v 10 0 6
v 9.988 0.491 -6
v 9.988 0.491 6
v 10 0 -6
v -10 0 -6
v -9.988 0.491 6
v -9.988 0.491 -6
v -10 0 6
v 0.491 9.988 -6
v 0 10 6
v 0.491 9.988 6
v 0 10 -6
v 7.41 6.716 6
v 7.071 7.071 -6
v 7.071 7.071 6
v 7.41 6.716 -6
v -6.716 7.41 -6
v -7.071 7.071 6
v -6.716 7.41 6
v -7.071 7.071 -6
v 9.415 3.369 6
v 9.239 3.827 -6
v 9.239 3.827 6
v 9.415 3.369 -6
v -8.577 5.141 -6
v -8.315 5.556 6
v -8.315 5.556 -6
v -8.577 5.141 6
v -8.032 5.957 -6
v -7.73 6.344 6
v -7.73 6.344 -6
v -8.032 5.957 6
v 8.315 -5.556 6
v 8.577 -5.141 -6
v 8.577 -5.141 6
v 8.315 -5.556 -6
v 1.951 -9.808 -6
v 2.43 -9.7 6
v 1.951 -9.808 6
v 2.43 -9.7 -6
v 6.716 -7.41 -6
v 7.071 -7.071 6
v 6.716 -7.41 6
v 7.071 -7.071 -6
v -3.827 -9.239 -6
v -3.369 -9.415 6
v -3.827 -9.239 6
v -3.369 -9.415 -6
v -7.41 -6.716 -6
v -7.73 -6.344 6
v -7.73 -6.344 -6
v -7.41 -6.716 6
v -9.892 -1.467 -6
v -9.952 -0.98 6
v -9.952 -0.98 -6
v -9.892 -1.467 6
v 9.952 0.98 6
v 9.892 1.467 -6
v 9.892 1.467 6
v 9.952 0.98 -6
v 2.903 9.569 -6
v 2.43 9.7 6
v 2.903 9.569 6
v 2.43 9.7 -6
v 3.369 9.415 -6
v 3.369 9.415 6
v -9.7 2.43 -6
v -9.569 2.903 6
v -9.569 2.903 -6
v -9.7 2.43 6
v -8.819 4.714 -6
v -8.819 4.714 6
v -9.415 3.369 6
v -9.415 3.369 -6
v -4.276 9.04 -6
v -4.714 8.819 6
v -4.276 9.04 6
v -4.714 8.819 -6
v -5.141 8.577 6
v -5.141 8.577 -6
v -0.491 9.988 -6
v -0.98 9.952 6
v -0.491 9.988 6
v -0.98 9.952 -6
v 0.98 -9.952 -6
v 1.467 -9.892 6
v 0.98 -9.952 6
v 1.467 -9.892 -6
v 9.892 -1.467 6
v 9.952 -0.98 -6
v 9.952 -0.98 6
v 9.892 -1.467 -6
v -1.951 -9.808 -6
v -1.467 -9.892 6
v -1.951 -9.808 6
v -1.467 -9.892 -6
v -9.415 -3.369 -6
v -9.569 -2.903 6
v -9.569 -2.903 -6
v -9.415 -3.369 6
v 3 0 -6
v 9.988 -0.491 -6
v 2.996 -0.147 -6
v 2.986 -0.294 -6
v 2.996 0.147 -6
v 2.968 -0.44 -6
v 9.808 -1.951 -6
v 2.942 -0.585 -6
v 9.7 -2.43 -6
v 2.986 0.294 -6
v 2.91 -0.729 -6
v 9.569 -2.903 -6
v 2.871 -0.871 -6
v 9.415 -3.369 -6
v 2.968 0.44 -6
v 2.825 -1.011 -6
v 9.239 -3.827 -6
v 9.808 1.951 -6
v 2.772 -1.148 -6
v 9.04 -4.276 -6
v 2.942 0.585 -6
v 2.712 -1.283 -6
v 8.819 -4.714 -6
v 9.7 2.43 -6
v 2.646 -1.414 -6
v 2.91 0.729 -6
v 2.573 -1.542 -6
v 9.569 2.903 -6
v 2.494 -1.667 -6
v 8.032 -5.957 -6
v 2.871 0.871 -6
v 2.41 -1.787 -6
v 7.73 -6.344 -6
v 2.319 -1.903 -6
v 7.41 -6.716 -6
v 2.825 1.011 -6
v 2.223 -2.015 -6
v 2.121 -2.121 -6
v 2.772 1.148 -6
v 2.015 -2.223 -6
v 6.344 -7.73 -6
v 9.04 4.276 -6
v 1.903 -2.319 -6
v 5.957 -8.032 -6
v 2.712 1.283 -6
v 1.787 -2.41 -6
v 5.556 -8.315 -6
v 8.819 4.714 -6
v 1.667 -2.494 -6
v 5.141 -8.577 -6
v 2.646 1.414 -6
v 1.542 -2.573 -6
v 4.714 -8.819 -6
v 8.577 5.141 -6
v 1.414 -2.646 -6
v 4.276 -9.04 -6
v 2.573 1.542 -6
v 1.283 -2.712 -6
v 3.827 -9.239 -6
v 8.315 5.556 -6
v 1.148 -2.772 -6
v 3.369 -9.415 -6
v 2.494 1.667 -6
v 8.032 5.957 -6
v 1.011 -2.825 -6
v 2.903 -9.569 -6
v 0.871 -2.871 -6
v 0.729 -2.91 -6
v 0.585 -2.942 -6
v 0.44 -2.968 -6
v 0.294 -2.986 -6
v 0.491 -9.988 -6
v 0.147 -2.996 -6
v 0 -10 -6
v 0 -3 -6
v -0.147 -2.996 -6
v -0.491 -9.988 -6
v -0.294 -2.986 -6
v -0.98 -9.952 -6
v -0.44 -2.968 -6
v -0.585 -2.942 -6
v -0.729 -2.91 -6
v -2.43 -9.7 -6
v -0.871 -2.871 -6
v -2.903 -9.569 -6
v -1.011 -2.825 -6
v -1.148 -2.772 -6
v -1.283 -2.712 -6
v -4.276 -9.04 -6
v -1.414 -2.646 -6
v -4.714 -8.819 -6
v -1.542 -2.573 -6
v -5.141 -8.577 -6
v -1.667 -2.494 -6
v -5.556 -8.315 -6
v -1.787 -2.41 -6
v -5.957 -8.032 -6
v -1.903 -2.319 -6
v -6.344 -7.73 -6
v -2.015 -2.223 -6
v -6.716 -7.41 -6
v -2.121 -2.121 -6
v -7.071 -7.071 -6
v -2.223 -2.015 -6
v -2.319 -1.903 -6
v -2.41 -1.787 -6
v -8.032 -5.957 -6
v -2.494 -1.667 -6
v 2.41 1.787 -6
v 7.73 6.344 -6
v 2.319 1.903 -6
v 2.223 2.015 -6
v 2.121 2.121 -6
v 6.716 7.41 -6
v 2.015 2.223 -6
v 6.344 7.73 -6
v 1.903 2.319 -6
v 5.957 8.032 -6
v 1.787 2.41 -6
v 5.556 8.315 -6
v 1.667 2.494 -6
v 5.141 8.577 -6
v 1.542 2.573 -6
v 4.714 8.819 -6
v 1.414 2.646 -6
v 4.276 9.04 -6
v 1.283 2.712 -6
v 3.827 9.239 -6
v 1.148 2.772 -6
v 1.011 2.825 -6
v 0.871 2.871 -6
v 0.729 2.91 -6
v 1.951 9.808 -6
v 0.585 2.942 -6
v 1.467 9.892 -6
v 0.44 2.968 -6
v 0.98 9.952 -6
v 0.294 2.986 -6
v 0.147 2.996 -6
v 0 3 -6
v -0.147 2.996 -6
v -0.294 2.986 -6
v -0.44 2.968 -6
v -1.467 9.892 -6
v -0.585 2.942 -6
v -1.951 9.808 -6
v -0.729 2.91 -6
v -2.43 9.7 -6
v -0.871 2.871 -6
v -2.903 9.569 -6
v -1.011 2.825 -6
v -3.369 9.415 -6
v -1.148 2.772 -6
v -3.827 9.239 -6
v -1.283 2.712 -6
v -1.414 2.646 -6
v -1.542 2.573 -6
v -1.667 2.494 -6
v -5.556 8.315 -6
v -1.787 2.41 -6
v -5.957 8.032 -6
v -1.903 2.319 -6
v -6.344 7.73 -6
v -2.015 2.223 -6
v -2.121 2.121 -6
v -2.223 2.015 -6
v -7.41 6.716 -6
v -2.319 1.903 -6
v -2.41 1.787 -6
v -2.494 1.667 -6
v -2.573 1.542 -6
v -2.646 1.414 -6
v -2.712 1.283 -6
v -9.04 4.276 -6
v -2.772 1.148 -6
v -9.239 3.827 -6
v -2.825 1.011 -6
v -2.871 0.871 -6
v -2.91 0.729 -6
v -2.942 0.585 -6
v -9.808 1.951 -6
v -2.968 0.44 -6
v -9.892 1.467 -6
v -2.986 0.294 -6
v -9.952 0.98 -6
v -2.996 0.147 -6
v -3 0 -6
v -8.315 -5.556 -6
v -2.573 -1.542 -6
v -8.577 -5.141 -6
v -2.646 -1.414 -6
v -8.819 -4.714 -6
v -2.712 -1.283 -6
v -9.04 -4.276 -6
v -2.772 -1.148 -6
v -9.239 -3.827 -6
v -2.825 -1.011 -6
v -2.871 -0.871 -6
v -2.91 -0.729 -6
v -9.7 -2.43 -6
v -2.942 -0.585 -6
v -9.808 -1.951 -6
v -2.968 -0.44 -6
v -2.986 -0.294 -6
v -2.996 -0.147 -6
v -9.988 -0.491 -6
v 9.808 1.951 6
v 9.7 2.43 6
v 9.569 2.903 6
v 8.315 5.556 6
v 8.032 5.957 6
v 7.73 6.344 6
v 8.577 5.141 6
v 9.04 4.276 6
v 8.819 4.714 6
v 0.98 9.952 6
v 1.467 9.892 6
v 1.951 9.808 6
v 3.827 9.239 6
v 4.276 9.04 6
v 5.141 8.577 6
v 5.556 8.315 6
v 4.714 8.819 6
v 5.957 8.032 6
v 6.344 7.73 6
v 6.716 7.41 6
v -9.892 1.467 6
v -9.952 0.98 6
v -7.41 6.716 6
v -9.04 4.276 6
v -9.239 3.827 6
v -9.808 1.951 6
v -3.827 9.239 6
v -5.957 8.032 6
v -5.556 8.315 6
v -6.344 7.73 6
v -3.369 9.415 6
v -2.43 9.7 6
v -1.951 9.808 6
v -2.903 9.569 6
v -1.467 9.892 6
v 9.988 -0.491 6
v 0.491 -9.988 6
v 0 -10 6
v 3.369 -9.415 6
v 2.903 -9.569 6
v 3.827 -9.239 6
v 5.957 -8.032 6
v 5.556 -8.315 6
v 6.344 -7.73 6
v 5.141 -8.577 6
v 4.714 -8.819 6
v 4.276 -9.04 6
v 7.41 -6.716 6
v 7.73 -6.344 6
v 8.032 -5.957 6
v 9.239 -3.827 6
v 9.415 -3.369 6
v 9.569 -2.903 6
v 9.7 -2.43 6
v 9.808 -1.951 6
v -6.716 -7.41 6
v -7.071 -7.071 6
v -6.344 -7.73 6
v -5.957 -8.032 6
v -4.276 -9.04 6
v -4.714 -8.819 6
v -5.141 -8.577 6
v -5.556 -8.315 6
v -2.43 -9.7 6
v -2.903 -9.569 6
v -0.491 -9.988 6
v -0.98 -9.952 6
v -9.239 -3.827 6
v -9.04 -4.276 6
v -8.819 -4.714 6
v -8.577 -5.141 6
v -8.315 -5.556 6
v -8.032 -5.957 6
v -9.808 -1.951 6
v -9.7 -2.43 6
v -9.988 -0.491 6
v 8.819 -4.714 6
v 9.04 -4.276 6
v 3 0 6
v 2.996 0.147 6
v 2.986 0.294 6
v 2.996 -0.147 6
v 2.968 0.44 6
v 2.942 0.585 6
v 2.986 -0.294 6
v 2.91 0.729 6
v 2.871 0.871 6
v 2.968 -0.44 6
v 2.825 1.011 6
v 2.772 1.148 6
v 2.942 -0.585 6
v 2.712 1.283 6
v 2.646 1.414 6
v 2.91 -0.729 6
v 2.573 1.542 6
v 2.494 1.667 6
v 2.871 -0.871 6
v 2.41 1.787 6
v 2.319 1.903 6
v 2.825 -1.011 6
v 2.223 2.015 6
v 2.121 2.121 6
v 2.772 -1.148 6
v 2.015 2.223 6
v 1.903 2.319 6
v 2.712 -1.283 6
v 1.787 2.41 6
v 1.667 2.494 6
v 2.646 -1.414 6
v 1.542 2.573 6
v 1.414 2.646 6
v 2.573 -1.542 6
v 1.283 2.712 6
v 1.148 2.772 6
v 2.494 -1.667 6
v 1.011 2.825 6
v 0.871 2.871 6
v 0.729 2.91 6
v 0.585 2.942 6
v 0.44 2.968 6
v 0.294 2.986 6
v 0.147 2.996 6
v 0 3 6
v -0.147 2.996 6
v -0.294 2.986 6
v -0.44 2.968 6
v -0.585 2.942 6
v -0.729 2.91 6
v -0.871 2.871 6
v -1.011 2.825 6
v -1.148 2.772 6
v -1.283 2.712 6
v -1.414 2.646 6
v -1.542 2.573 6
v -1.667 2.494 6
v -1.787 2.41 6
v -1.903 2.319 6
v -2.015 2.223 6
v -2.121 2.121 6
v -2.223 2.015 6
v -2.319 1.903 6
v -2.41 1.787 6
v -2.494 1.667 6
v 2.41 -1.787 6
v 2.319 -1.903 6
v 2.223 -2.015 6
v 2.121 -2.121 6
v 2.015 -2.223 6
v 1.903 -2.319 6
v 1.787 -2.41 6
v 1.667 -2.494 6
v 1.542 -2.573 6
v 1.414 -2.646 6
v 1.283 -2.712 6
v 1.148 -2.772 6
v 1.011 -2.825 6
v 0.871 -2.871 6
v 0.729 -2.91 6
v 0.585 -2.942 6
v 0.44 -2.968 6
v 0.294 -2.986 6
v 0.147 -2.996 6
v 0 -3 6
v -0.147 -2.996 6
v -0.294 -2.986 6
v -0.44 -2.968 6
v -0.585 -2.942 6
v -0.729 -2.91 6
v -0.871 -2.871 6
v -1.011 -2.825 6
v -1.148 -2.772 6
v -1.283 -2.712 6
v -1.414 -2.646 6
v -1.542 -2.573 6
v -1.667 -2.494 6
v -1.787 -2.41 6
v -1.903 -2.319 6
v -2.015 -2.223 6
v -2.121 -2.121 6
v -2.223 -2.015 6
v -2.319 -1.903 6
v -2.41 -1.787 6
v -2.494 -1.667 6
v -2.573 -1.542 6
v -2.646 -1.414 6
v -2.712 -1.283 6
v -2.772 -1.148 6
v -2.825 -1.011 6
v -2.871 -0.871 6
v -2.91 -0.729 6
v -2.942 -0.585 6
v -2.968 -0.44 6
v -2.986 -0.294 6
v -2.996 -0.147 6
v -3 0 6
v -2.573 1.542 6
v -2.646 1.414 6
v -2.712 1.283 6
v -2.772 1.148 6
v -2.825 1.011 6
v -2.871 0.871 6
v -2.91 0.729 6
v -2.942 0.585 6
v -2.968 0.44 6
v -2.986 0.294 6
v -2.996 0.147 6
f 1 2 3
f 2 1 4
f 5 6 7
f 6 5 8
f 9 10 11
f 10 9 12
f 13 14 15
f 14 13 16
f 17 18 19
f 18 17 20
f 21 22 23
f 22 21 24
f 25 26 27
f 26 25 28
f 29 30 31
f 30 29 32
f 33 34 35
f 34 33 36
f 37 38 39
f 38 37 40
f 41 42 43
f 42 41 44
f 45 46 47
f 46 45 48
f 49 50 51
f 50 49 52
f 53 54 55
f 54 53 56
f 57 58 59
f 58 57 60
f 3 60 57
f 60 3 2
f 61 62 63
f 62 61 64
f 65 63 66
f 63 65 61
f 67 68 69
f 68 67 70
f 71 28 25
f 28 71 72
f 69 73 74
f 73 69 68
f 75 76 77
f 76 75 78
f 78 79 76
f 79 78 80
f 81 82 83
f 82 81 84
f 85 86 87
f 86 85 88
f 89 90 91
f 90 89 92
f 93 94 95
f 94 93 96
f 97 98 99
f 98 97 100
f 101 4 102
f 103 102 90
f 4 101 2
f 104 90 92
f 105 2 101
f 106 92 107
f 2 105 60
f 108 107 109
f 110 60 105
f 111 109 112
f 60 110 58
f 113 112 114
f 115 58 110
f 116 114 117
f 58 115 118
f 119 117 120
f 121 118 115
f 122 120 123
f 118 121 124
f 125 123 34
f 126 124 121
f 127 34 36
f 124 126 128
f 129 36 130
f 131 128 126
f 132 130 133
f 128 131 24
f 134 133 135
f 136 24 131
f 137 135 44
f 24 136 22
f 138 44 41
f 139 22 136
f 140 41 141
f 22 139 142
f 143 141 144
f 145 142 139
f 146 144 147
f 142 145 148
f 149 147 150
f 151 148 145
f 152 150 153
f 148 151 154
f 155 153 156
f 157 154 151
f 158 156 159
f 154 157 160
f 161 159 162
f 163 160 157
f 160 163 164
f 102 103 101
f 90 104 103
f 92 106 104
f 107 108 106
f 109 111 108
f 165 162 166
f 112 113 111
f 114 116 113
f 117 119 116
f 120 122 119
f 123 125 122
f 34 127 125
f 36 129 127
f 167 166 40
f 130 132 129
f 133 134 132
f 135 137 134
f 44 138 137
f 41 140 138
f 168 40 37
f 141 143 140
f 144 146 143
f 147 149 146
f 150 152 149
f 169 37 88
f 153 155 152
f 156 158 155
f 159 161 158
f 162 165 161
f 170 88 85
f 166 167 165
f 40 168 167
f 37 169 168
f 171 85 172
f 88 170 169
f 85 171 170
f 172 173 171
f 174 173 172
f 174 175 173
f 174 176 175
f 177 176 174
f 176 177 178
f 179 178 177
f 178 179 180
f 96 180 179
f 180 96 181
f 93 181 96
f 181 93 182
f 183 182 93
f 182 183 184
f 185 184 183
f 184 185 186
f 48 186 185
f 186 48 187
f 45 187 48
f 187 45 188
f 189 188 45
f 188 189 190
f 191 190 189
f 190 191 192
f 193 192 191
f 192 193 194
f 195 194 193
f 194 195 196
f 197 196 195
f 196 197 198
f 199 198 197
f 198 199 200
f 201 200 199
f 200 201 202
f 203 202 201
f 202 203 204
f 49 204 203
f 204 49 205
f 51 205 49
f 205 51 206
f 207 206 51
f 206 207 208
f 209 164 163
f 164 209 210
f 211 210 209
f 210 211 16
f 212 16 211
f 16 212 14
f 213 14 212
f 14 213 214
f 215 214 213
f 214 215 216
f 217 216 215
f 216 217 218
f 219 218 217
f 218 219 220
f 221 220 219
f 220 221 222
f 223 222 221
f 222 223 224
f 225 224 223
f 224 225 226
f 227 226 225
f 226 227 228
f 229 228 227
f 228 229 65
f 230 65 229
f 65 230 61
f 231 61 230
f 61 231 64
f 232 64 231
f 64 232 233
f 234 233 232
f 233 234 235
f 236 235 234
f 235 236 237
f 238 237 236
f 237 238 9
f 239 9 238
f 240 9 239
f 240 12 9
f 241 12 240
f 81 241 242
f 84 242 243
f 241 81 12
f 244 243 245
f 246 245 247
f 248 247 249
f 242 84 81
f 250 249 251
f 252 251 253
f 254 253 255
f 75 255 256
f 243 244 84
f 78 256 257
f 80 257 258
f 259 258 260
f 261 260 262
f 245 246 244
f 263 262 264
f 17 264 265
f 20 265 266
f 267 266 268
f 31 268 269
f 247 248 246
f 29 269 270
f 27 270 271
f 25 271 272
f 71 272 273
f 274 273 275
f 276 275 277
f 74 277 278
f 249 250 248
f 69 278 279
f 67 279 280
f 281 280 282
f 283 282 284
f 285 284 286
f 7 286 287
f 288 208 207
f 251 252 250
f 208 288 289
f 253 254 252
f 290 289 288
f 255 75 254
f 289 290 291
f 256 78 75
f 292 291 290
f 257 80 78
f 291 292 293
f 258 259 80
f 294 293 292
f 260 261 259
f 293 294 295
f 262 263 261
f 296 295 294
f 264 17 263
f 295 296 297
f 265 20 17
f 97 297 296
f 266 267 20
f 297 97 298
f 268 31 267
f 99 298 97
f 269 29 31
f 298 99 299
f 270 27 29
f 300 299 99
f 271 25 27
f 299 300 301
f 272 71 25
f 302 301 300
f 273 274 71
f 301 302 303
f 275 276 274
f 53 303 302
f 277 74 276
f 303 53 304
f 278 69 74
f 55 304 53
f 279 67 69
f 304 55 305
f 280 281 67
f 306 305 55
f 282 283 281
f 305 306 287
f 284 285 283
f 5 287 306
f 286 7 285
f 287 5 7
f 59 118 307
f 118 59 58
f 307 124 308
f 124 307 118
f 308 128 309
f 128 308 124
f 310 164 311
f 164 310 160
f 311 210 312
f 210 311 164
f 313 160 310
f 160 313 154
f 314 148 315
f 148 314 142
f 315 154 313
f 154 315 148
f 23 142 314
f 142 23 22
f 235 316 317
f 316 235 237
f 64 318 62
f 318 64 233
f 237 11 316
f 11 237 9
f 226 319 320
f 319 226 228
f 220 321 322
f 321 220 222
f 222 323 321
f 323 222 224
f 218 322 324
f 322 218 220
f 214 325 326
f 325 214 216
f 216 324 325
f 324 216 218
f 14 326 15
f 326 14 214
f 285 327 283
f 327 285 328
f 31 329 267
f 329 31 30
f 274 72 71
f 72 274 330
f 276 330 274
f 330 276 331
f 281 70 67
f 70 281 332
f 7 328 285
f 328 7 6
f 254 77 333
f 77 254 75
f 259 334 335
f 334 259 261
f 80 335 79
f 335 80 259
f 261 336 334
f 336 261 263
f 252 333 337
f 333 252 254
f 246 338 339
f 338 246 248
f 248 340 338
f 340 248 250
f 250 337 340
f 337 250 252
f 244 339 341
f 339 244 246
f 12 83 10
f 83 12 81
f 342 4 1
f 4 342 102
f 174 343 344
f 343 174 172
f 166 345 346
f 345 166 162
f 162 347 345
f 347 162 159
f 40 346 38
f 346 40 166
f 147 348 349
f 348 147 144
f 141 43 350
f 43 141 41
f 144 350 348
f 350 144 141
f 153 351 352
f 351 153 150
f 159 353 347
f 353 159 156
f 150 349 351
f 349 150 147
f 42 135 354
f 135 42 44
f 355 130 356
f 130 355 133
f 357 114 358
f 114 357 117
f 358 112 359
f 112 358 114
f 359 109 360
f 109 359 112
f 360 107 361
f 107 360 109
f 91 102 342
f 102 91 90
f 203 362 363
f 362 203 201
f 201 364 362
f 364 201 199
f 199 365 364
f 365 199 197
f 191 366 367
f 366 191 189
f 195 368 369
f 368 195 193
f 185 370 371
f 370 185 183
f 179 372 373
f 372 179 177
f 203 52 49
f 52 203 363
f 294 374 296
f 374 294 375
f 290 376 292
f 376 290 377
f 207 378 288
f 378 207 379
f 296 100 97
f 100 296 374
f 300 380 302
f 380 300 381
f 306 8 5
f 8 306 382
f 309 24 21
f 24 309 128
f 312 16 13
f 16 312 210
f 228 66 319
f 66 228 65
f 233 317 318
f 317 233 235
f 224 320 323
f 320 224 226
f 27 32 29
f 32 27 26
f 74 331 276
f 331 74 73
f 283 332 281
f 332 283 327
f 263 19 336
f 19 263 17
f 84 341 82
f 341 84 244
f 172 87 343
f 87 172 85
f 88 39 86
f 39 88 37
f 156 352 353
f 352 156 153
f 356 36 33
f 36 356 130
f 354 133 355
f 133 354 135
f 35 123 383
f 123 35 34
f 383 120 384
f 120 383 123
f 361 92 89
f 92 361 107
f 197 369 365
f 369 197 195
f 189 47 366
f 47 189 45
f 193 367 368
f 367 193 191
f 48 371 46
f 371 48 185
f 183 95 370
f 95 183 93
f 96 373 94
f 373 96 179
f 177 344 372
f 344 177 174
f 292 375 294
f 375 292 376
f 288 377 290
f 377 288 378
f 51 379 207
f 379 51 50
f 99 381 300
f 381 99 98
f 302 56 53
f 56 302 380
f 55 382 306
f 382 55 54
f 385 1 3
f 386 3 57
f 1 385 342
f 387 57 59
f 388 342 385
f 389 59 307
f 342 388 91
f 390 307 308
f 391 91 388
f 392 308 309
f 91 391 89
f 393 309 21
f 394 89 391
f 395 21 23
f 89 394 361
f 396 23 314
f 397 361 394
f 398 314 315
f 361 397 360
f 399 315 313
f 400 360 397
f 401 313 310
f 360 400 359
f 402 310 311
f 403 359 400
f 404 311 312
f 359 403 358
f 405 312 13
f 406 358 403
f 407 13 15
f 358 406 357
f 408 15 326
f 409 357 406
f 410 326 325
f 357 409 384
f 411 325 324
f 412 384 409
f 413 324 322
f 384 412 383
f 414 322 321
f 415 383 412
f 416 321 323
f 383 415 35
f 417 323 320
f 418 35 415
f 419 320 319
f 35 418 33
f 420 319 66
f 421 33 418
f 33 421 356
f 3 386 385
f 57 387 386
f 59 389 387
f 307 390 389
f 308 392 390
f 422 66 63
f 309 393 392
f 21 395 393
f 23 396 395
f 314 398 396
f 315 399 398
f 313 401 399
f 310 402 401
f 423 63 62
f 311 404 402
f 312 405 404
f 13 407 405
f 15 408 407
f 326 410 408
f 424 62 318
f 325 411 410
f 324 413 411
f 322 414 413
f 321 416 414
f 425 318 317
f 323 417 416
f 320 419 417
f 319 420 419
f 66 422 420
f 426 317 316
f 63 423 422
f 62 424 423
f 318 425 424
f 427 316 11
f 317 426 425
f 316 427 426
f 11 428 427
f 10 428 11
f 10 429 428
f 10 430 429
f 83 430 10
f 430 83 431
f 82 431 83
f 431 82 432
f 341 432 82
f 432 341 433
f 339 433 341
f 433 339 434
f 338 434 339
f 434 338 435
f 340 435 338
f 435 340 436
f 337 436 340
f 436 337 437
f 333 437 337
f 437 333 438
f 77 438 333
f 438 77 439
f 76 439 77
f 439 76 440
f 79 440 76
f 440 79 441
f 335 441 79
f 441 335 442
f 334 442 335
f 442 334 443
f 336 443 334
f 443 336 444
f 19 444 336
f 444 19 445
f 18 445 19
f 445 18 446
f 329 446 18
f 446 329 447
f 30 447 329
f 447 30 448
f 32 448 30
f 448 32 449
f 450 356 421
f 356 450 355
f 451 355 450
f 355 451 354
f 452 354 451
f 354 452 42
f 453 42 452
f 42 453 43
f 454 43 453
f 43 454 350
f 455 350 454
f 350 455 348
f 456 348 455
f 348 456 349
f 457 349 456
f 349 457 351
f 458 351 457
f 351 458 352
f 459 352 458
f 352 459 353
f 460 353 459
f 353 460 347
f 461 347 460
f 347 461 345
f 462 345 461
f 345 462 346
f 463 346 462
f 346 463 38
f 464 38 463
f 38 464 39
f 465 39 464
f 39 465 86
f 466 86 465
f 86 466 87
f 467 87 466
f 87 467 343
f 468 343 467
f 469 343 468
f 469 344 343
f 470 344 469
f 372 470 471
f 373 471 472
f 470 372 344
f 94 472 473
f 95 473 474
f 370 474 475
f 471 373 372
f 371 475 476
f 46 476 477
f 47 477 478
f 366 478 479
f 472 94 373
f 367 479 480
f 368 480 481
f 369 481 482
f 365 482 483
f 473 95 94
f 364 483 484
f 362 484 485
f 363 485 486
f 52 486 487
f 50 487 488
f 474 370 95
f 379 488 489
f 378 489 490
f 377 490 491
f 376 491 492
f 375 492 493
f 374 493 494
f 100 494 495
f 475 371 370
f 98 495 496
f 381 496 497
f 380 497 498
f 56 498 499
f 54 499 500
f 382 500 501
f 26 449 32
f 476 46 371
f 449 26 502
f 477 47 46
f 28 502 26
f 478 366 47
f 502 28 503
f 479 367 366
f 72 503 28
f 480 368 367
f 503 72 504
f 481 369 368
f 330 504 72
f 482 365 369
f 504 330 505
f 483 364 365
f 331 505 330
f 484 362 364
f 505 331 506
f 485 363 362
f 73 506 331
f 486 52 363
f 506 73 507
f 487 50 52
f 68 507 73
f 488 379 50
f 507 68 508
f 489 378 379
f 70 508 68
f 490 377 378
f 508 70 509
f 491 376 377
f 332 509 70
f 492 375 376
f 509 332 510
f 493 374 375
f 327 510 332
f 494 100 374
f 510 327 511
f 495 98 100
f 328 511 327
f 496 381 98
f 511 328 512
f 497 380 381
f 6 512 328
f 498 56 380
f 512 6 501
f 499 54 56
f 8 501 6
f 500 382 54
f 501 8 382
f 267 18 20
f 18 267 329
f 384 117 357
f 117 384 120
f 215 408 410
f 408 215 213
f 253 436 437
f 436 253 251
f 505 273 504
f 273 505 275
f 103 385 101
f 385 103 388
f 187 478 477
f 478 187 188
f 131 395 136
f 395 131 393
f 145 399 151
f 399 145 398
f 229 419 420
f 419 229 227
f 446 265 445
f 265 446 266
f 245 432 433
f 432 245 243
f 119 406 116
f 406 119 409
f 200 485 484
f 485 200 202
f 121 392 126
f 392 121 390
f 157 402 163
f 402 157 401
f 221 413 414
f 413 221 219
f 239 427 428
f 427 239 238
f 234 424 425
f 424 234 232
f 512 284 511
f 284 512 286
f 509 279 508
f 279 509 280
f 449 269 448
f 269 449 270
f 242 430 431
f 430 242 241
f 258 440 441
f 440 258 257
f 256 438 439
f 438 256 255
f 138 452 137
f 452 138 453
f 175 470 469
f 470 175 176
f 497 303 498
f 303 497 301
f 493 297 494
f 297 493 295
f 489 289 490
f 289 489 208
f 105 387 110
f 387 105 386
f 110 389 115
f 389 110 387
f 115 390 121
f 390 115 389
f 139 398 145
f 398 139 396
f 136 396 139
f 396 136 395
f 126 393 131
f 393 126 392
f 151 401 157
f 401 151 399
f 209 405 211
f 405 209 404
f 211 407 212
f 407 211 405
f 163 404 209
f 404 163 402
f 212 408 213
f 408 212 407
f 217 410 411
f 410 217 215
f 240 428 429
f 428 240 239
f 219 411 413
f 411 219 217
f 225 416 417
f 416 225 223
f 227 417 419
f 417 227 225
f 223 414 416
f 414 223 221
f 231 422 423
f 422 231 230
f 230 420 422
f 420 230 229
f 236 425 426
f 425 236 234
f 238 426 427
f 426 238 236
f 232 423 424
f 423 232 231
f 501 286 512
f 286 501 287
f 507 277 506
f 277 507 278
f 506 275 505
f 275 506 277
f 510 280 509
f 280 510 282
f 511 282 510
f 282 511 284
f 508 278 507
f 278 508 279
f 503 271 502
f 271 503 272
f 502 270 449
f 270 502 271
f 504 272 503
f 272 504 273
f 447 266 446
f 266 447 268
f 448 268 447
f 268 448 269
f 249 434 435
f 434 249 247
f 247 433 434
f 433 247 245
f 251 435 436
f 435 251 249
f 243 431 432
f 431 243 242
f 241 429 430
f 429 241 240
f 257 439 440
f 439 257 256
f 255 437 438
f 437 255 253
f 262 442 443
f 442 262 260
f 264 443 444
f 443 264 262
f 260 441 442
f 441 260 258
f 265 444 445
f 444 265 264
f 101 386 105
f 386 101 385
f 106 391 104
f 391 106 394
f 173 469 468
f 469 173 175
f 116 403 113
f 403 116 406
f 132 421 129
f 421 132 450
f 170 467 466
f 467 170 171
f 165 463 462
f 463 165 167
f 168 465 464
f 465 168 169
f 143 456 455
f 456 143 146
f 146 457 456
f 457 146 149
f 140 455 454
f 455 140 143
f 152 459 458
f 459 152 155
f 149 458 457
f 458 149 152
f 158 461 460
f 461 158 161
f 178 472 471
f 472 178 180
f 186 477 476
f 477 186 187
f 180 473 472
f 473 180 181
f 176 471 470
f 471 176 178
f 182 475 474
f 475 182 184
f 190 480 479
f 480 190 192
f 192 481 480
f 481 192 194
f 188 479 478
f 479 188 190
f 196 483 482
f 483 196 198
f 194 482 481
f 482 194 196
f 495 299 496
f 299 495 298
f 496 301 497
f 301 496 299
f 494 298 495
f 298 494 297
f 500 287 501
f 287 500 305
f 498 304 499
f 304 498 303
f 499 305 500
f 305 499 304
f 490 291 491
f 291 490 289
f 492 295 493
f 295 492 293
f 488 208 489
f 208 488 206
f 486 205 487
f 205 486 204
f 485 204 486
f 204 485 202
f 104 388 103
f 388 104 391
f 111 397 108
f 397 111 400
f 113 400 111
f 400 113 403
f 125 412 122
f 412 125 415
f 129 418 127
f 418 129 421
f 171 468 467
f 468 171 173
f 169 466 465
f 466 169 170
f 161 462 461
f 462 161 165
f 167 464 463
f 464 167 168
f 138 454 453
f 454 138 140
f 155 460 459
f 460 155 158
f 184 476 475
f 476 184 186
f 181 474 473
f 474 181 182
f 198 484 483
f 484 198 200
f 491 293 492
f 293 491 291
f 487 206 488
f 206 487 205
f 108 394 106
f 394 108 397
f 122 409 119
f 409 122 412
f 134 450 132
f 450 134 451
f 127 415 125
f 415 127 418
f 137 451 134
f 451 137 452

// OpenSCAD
// Codex correction; all lengths are mm. Synthetic test requirement.
difference(){ cylinder(d=20,h=12,center=true,$fn=128); cylinder(d=6,h=14,center=true,$fn=128); }
